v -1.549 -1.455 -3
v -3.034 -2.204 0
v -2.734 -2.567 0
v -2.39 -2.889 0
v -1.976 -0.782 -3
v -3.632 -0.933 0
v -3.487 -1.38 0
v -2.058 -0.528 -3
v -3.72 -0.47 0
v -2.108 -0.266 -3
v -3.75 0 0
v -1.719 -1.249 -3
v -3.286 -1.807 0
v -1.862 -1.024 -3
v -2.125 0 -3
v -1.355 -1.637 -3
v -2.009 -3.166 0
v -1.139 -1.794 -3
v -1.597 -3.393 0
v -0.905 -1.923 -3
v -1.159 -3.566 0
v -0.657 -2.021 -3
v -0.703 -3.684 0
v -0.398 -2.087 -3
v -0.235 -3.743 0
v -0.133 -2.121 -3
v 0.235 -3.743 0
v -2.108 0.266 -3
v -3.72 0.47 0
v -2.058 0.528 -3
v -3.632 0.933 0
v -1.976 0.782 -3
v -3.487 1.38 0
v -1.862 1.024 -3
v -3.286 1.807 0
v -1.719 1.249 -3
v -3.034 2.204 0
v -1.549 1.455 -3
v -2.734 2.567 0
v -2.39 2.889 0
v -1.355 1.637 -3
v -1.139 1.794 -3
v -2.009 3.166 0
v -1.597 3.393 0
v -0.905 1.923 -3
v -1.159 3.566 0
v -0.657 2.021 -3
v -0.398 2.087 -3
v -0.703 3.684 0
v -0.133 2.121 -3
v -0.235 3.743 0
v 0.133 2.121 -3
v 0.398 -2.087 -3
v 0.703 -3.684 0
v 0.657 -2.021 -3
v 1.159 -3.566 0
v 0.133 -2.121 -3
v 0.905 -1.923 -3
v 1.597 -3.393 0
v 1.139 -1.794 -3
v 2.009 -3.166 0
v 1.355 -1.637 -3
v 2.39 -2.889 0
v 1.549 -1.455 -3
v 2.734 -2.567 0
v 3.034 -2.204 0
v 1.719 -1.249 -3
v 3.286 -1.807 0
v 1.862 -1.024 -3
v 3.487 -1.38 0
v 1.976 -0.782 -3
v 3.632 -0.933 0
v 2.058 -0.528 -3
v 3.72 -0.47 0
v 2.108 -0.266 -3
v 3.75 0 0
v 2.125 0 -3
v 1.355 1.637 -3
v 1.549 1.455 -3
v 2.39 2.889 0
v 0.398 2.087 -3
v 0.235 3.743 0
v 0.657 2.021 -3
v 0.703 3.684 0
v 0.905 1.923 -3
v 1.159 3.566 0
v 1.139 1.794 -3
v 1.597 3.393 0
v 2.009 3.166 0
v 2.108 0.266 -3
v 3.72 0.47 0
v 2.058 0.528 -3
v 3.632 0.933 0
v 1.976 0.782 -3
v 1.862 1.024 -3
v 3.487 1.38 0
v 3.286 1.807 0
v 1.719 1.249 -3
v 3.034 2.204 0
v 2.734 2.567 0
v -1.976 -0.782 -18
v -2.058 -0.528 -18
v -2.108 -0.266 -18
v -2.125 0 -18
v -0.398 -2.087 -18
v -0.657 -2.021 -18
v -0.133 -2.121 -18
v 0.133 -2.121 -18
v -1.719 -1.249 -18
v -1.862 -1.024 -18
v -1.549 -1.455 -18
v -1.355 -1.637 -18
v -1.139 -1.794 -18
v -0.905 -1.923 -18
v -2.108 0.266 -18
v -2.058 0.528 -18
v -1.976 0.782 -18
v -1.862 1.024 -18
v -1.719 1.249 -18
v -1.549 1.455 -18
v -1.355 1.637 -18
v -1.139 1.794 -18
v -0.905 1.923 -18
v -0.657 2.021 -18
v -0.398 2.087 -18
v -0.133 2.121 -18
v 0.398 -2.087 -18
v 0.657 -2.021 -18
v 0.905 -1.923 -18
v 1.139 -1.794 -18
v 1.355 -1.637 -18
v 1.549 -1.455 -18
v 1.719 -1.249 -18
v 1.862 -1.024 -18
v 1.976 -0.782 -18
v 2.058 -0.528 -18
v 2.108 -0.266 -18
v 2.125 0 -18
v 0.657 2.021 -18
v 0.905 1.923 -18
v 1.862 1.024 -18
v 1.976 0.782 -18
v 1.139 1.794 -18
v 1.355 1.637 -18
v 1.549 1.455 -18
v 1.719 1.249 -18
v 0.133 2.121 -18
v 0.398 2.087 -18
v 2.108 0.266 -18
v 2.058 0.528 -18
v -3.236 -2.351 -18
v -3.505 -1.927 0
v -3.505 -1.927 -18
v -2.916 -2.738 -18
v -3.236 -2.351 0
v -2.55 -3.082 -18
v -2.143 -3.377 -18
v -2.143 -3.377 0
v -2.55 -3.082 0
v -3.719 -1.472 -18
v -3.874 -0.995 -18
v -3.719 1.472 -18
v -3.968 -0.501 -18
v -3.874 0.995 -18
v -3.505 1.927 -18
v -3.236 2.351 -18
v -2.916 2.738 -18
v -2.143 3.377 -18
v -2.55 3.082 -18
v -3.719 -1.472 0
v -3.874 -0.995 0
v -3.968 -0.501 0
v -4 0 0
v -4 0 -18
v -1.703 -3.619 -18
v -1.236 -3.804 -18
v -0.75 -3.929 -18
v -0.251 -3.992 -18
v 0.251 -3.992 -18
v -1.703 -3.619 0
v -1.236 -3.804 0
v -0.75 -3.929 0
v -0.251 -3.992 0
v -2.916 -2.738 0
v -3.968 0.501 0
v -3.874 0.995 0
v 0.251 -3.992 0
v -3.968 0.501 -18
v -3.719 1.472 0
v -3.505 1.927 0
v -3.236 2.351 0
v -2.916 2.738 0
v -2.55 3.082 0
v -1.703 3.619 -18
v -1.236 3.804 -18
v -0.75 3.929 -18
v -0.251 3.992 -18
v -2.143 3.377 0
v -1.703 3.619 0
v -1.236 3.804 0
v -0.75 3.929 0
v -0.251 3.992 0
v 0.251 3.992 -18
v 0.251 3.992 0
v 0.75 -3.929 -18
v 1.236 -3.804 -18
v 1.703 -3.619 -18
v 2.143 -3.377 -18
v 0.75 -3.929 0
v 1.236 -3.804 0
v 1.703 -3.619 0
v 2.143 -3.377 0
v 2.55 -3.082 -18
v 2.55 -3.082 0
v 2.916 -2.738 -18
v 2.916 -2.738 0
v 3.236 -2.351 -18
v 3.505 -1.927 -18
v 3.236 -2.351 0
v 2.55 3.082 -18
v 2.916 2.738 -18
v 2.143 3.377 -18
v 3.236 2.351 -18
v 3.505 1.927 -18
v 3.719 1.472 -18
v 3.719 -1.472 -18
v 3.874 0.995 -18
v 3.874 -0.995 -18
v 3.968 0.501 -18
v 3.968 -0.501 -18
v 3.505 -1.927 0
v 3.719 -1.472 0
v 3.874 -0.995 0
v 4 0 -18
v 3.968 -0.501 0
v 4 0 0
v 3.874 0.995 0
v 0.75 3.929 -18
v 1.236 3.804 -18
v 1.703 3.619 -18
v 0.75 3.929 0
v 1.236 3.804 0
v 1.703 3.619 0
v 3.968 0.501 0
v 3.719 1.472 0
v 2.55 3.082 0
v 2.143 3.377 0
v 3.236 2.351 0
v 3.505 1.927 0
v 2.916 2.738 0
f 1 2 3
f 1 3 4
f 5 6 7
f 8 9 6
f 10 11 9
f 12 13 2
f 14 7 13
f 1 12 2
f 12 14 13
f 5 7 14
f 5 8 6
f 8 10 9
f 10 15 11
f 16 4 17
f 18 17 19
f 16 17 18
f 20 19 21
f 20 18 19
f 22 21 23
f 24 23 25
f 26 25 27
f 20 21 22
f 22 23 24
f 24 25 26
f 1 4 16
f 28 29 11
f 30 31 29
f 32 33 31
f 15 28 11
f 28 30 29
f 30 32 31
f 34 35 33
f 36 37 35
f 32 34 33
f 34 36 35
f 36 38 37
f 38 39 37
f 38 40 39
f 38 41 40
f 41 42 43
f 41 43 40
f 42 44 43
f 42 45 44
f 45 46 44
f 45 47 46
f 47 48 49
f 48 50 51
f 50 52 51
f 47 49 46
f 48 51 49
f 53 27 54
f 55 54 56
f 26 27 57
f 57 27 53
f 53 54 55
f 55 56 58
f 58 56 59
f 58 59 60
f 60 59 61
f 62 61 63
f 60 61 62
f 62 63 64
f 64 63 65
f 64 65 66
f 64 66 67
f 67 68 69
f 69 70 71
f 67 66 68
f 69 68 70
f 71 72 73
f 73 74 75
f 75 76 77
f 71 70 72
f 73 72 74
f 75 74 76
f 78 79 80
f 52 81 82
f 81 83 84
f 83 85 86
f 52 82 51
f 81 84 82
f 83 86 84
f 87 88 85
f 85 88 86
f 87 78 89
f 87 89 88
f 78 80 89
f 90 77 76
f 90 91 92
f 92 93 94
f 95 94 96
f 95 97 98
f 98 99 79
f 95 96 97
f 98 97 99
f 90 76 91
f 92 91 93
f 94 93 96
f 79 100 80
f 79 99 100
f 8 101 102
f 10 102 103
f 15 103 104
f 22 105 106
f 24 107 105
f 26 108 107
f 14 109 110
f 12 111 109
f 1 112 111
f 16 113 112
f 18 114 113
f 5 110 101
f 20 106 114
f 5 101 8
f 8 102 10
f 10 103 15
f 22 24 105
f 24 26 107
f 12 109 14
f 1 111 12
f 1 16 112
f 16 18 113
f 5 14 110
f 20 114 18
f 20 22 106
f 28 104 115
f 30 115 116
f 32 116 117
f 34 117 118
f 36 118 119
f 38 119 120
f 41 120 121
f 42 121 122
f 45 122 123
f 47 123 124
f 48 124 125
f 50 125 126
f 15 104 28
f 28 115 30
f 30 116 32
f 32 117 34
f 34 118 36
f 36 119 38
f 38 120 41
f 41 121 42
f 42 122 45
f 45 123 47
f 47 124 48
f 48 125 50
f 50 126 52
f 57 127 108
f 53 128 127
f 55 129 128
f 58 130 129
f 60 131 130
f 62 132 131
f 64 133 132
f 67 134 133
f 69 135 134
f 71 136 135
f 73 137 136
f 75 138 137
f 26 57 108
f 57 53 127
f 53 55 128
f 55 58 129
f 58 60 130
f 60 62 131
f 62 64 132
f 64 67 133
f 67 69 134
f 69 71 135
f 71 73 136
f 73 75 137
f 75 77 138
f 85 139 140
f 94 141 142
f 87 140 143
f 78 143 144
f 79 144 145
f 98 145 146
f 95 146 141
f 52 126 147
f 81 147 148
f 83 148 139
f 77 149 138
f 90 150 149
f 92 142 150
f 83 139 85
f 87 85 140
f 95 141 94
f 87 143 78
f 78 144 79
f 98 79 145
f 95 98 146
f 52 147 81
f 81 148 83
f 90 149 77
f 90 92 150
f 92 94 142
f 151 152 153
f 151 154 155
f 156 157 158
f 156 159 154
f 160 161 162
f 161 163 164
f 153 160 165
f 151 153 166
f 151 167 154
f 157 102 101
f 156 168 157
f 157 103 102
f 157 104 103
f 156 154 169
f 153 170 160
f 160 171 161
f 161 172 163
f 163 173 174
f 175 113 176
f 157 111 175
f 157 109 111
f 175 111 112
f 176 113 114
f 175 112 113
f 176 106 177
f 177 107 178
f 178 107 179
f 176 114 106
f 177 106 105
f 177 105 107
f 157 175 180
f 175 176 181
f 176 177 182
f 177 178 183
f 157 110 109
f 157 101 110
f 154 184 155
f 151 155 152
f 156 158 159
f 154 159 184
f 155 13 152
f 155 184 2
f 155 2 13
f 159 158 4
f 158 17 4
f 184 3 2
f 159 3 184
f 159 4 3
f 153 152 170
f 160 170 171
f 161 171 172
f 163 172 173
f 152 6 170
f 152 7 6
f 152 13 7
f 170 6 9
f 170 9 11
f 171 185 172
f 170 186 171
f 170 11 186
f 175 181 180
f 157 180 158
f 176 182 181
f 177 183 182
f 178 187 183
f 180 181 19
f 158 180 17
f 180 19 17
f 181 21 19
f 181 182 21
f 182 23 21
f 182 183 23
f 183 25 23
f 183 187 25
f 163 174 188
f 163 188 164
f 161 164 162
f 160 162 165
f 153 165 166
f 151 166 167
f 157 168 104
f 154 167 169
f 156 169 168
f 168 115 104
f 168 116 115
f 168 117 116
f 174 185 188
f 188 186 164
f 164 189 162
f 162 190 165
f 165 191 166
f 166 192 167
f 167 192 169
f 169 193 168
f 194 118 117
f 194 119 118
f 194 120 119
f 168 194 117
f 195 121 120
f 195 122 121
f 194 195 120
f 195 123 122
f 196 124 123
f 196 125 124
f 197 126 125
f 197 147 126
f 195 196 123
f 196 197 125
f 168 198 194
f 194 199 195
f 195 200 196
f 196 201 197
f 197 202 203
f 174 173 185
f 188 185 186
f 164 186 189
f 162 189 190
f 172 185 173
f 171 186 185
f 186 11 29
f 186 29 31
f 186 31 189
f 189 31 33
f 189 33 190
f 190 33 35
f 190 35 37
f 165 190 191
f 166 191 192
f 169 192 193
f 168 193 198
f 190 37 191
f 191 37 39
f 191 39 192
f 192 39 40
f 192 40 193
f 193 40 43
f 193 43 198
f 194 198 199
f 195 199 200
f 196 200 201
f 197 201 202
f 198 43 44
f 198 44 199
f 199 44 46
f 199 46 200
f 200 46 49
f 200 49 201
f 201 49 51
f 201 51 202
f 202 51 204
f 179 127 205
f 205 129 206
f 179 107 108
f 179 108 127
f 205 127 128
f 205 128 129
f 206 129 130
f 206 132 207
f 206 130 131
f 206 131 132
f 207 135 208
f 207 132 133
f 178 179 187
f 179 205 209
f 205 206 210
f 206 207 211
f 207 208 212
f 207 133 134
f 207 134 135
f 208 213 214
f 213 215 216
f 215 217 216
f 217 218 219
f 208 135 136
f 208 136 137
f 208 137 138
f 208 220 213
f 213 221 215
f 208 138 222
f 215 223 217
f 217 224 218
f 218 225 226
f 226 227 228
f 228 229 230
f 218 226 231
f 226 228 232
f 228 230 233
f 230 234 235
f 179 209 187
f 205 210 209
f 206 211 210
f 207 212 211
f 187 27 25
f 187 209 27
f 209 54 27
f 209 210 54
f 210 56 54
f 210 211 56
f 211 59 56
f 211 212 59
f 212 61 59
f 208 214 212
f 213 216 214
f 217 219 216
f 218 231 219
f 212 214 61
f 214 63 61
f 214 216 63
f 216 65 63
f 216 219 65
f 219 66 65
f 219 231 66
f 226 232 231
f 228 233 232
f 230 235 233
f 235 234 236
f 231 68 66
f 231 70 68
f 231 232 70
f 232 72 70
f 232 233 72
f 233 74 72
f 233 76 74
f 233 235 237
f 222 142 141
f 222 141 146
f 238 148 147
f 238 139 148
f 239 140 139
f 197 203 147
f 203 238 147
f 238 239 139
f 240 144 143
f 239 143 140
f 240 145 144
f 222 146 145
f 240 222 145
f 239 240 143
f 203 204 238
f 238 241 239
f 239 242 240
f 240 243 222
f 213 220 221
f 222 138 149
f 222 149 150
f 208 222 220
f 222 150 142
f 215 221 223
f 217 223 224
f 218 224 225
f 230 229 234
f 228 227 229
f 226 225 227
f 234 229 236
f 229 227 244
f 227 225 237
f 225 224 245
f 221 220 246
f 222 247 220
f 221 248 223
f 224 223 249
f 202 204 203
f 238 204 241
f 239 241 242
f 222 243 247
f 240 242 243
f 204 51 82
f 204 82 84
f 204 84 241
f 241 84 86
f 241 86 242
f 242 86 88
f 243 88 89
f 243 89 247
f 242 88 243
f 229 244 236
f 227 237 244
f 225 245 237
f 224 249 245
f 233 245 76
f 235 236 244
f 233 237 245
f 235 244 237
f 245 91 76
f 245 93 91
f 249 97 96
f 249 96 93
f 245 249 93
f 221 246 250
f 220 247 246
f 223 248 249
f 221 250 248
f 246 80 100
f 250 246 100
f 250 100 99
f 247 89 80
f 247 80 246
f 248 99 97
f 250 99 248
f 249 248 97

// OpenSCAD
$fn = 50;

difference() {
	union() {
		translate(v = [0, 0, -18.0]) {
			cylinder(h = 18, r = 4.0);
		}
	}
	union() {
		translate(v = [0, 0, 0]) {
			rotate(a = [0, 0, 0]) {
				difference() {
					union() {
						translate(v = [0, 0, -21.0]) {
							cylinder(h = 21, r = 2.0);
						}
						translate(v = [0, 0, -3]) {
							cylinder(h = 3, r1 = 2.125, r2 = 3.75);
						}
						translate(v = [0, 0, -21.0]) {
							cylinder(h = 21, r = 2.125);
						}
						translate(v = [0, 0, -21.0]) {
							cylinder(h = 21, r = 2.0);
						}
					}
					union();
				}
			}
		}
	}
}
